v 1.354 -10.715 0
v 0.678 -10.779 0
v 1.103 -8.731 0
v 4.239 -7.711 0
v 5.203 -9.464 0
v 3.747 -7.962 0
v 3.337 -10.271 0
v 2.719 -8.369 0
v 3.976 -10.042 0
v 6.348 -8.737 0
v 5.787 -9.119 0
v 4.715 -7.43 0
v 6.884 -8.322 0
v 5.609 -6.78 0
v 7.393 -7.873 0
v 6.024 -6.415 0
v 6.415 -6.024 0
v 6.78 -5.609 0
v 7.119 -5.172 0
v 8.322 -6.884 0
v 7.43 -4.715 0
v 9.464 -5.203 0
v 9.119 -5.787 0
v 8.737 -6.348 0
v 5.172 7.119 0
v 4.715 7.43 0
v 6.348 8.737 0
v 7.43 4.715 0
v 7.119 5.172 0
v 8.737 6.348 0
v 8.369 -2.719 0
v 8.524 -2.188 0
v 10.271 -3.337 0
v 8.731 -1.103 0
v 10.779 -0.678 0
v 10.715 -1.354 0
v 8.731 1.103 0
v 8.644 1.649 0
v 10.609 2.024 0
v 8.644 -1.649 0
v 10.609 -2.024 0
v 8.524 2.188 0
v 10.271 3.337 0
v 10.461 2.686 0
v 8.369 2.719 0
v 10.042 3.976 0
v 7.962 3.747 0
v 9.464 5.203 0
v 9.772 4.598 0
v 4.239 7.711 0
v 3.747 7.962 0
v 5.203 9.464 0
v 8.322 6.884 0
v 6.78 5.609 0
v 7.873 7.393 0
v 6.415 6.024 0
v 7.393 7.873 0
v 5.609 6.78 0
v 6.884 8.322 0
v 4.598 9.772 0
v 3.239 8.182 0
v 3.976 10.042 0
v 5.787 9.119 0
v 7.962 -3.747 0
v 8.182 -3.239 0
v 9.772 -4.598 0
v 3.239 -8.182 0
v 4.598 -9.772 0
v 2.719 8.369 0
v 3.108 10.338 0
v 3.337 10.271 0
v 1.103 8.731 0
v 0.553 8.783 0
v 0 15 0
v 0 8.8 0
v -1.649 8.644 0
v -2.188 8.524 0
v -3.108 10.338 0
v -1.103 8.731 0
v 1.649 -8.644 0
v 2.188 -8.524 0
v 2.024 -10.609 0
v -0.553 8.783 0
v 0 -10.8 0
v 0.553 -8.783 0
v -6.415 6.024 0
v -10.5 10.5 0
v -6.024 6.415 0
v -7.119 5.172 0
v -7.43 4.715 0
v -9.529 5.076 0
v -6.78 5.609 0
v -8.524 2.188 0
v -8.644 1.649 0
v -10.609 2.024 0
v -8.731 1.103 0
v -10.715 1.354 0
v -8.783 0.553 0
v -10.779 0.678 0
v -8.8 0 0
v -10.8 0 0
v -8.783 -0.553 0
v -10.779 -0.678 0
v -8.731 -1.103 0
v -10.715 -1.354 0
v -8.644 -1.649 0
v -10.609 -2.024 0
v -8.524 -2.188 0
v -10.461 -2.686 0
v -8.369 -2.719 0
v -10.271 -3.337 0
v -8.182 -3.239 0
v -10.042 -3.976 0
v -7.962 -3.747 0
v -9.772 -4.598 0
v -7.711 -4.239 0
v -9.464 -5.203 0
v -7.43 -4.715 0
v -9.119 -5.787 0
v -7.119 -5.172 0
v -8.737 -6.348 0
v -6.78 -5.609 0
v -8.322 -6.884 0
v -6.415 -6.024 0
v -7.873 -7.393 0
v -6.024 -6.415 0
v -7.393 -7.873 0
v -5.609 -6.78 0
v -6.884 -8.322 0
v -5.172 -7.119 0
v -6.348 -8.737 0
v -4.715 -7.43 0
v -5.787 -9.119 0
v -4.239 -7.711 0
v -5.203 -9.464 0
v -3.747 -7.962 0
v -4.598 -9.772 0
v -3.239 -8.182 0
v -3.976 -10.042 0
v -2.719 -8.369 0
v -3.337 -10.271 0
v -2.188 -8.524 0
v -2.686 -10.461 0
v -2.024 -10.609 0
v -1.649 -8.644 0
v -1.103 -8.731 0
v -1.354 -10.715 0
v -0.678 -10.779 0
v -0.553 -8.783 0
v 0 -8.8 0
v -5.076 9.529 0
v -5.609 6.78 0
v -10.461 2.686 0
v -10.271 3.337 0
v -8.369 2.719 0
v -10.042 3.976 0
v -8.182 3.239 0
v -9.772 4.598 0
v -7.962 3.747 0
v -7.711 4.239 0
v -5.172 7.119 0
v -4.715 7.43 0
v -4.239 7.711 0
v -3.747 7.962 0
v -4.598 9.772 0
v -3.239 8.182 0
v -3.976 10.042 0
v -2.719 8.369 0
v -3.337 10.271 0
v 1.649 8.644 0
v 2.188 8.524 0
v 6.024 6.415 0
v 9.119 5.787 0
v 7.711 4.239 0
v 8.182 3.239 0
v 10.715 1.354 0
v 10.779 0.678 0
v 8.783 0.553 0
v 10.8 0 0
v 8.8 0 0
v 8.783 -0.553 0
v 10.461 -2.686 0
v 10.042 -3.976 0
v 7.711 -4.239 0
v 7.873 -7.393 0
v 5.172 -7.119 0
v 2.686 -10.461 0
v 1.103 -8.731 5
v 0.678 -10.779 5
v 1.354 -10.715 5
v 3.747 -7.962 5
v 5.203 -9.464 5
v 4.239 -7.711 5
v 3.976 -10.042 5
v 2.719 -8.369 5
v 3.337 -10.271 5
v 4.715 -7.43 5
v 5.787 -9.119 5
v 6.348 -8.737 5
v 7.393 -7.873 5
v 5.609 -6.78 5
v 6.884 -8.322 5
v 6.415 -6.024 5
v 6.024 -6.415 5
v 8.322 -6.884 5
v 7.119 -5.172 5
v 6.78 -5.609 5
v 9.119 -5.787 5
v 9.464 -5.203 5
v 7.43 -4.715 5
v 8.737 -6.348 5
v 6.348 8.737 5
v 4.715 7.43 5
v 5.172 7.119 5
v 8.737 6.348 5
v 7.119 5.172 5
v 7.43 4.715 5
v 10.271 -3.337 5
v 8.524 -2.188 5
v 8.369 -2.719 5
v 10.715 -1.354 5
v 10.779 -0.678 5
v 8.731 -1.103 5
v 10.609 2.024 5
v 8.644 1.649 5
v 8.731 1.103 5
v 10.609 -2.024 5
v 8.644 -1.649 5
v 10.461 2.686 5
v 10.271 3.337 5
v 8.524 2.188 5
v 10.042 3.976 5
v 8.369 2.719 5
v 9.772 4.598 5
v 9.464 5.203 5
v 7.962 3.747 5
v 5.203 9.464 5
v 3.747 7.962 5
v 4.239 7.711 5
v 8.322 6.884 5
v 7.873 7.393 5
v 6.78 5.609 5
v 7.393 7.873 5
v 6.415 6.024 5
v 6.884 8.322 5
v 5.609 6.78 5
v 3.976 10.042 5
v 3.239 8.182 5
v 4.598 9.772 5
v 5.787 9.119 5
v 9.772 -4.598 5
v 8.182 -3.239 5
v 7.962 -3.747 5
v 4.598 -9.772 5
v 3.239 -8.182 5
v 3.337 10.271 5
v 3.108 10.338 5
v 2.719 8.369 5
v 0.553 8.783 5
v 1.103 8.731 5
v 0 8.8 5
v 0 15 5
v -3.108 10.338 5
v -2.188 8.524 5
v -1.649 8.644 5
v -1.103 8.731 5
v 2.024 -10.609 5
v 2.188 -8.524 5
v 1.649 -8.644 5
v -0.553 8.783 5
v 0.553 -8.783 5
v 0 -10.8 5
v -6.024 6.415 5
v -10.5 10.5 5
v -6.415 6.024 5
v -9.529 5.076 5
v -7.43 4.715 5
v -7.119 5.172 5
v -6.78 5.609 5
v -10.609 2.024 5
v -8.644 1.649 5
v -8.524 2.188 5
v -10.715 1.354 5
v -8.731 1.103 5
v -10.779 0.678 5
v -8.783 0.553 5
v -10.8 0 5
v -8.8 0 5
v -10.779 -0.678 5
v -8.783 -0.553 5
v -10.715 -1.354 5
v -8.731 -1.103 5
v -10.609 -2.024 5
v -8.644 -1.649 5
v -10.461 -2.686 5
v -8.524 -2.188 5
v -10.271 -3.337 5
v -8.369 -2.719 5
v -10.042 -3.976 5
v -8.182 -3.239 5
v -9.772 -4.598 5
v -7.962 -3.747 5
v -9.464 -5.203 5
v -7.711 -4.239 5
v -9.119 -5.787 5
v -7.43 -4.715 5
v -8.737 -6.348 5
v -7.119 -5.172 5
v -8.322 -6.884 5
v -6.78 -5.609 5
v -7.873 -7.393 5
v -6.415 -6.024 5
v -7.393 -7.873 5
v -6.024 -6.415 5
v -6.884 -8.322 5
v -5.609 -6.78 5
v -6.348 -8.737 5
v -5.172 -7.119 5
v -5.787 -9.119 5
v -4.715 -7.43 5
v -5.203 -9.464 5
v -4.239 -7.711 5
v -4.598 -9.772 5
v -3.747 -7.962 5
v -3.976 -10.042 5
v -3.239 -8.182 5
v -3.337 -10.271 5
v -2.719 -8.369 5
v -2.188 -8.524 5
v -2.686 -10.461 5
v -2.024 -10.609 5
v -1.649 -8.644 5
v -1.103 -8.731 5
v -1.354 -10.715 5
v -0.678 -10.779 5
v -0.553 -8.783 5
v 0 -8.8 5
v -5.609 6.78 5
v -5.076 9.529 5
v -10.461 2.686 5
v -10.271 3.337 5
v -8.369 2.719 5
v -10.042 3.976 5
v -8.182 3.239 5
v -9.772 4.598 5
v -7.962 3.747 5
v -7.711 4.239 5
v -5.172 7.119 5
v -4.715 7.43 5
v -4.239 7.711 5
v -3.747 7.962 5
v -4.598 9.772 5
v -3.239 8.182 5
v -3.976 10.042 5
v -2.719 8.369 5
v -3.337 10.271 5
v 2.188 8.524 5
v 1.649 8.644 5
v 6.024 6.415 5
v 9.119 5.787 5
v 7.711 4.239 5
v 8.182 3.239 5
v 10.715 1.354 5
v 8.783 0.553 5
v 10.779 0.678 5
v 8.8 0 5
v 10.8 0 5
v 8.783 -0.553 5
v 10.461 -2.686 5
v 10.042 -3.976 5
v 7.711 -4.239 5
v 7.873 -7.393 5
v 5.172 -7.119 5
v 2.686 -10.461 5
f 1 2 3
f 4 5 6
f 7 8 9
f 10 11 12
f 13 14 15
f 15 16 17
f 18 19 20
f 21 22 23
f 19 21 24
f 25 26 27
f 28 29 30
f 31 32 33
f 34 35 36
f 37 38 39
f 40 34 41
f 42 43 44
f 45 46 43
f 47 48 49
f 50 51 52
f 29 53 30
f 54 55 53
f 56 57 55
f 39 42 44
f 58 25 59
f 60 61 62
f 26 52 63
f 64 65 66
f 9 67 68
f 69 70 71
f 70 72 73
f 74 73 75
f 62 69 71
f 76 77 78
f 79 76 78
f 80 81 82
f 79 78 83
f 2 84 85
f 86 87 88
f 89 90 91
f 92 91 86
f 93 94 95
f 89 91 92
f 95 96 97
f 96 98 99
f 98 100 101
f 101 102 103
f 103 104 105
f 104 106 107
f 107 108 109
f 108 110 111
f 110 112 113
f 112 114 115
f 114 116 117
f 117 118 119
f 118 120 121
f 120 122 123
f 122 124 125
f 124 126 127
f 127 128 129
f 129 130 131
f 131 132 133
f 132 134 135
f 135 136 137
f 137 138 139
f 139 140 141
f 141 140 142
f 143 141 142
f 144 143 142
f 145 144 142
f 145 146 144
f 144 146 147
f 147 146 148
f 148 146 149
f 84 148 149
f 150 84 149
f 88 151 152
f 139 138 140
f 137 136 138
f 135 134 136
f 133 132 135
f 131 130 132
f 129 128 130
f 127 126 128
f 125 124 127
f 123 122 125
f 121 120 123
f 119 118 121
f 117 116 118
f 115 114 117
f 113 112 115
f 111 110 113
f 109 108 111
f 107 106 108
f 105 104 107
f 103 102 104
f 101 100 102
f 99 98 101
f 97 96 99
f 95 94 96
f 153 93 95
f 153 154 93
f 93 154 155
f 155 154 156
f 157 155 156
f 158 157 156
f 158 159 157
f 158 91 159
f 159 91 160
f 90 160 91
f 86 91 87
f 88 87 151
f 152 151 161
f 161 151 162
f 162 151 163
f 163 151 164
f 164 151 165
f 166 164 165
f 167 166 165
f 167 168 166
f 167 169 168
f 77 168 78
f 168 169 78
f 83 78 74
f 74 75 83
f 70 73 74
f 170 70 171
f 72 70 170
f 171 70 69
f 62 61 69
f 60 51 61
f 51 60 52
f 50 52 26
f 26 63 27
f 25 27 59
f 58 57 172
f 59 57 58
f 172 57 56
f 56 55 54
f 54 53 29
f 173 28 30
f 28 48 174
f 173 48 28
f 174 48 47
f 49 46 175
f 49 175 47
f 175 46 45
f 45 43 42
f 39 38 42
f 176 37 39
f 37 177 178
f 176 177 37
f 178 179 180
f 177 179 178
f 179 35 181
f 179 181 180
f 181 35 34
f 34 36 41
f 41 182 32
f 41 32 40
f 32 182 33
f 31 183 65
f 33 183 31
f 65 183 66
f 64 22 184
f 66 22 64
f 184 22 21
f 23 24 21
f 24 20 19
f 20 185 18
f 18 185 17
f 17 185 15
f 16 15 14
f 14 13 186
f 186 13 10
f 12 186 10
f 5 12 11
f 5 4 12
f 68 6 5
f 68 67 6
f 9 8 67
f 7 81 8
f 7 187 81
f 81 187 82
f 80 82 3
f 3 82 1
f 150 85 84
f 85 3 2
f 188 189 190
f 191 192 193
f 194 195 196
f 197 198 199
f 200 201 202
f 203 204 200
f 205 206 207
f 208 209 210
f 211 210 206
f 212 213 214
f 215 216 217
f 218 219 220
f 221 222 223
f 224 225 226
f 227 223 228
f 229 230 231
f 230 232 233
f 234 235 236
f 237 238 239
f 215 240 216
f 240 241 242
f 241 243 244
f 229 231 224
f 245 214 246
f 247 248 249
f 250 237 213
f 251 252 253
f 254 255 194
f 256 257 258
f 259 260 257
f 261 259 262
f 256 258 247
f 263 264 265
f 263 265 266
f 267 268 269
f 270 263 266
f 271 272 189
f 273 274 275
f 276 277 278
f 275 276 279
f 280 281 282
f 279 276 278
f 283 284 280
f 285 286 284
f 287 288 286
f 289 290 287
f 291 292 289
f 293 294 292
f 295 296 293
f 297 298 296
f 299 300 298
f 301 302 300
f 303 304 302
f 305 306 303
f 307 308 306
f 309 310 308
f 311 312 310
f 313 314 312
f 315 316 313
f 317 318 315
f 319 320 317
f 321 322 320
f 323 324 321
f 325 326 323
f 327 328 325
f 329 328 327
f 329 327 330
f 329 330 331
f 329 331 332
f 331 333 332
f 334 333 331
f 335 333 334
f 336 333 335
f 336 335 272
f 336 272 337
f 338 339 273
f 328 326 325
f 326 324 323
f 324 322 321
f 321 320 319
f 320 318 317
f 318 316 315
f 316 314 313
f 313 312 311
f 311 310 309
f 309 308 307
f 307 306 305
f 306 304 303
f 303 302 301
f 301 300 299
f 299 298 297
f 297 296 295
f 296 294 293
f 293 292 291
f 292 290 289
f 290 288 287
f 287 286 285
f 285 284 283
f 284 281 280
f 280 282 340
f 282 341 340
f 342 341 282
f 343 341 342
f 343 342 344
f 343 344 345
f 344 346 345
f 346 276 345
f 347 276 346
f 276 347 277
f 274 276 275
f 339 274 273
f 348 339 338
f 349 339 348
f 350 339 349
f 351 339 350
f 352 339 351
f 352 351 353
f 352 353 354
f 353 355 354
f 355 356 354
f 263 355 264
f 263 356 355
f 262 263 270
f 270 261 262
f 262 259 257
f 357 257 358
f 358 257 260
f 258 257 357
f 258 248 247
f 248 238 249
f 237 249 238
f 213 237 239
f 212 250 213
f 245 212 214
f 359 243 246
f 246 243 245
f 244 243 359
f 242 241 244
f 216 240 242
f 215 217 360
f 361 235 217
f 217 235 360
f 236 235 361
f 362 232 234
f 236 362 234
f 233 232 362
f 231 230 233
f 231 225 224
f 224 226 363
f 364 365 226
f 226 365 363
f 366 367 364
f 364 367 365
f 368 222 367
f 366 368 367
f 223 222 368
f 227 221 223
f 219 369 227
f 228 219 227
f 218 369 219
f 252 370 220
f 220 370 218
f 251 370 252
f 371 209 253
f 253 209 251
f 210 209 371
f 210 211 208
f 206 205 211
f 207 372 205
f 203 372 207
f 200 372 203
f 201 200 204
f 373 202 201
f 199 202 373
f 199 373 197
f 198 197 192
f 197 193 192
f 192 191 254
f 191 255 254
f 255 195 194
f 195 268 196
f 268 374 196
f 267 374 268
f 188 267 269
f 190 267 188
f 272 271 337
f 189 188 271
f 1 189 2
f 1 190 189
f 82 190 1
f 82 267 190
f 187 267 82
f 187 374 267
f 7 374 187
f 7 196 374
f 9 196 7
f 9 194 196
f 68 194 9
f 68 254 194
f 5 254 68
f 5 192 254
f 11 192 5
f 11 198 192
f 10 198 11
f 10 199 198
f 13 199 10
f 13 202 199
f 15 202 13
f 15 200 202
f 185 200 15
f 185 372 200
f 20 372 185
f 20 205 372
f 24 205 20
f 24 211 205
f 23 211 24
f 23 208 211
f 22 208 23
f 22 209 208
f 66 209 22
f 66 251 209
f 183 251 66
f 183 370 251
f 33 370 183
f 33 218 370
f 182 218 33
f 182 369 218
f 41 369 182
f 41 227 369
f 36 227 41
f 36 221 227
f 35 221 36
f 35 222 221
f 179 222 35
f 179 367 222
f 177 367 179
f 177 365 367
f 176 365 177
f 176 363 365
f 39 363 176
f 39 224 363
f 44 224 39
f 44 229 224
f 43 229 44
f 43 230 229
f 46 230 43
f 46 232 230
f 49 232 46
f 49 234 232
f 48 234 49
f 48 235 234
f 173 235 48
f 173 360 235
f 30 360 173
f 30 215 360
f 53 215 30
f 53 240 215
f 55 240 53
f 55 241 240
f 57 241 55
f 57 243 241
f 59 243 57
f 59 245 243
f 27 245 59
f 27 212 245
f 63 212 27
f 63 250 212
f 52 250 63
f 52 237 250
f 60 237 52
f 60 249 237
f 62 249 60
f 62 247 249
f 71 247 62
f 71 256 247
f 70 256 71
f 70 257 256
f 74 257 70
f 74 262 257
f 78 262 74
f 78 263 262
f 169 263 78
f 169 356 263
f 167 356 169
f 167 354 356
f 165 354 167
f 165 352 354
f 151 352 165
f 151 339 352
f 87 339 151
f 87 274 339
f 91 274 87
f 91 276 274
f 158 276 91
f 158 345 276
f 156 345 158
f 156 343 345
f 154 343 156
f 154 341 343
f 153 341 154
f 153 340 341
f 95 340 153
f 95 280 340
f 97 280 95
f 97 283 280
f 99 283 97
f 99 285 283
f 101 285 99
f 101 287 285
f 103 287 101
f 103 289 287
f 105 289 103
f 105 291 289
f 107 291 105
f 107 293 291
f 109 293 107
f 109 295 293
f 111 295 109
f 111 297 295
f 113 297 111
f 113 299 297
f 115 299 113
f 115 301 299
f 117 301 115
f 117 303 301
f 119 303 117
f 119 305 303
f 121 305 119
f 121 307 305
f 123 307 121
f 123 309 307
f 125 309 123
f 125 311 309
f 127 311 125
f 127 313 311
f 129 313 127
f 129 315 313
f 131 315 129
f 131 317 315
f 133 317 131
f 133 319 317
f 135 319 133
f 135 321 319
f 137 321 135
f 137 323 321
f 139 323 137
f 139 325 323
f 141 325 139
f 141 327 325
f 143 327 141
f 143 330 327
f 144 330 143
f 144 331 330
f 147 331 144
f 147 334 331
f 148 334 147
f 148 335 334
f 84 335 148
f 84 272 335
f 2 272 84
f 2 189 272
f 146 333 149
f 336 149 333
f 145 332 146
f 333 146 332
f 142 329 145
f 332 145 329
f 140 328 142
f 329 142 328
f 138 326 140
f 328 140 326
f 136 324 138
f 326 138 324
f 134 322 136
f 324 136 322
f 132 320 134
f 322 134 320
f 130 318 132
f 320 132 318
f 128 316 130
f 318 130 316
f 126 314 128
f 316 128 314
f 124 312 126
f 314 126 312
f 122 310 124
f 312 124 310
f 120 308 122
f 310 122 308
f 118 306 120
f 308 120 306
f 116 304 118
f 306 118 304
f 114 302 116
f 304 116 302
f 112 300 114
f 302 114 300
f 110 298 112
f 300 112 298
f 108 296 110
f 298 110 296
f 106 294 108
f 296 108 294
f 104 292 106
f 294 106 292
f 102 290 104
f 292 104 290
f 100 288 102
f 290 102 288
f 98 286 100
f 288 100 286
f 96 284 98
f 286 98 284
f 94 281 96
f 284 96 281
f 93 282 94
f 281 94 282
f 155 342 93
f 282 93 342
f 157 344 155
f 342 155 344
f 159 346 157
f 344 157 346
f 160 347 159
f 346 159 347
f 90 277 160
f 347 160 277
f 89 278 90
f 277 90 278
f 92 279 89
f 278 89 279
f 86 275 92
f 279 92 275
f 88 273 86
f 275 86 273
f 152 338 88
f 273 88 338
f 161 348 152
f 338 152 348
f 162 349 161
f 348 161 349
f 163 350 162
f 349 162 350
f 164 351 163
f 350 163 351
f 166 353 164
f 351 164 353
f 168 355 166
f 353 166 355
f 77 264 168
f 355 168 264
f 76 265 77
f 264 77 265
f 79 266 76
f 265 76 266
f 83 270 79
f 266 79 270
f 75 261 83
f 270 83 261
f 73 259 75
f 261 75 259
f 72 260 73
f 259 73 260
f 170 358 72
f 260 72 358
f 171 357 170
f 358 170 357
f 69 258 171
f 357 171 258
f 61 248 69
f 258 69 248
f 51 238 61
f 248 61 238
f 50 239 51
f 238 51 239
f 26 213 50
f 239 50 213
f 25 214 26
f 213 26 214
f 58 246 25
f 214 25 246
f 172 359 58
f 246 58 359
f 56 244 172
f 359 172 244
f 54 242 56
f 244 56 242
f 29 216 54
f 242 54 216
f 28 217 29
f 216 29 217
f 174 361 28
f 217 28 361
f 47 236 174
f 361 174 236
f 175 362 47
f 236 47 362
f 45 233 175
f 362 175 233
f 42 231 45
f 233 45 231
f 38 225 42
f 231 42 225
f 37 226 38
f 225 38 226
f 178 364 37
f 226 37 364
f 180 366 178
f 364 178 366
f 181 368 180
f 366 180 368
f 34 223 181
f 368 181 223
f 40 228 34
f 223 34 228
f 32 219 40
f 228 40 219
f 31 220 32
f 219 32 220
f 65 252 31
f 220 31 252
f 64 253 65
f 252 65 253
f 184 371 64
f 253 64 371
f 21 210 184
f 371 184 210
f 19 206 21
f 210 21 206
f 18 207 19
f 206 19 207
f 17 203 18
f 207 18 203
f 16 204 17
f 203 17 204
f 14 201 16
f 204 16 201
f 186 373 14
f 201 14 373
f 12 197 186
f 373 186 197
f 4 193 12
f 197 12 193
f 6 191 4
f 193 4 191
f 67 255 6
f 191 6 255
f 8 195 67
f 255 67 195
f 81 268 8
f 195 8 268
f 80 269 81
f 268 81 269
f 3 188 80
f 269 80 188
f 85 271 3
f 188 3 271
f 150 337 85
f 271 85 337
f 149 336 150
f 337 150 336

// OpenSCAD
$fn=100;
linear_extrude (5) {
    difference () {
        union () {
            polygon (points = [[3.8, 9.3], [0, 15], [-3.8, 9.3], [-10.5, 10.5], [-9.3, 3.8]]);
            circle (10.8);
        }
        circle (8.8);
    }
}
